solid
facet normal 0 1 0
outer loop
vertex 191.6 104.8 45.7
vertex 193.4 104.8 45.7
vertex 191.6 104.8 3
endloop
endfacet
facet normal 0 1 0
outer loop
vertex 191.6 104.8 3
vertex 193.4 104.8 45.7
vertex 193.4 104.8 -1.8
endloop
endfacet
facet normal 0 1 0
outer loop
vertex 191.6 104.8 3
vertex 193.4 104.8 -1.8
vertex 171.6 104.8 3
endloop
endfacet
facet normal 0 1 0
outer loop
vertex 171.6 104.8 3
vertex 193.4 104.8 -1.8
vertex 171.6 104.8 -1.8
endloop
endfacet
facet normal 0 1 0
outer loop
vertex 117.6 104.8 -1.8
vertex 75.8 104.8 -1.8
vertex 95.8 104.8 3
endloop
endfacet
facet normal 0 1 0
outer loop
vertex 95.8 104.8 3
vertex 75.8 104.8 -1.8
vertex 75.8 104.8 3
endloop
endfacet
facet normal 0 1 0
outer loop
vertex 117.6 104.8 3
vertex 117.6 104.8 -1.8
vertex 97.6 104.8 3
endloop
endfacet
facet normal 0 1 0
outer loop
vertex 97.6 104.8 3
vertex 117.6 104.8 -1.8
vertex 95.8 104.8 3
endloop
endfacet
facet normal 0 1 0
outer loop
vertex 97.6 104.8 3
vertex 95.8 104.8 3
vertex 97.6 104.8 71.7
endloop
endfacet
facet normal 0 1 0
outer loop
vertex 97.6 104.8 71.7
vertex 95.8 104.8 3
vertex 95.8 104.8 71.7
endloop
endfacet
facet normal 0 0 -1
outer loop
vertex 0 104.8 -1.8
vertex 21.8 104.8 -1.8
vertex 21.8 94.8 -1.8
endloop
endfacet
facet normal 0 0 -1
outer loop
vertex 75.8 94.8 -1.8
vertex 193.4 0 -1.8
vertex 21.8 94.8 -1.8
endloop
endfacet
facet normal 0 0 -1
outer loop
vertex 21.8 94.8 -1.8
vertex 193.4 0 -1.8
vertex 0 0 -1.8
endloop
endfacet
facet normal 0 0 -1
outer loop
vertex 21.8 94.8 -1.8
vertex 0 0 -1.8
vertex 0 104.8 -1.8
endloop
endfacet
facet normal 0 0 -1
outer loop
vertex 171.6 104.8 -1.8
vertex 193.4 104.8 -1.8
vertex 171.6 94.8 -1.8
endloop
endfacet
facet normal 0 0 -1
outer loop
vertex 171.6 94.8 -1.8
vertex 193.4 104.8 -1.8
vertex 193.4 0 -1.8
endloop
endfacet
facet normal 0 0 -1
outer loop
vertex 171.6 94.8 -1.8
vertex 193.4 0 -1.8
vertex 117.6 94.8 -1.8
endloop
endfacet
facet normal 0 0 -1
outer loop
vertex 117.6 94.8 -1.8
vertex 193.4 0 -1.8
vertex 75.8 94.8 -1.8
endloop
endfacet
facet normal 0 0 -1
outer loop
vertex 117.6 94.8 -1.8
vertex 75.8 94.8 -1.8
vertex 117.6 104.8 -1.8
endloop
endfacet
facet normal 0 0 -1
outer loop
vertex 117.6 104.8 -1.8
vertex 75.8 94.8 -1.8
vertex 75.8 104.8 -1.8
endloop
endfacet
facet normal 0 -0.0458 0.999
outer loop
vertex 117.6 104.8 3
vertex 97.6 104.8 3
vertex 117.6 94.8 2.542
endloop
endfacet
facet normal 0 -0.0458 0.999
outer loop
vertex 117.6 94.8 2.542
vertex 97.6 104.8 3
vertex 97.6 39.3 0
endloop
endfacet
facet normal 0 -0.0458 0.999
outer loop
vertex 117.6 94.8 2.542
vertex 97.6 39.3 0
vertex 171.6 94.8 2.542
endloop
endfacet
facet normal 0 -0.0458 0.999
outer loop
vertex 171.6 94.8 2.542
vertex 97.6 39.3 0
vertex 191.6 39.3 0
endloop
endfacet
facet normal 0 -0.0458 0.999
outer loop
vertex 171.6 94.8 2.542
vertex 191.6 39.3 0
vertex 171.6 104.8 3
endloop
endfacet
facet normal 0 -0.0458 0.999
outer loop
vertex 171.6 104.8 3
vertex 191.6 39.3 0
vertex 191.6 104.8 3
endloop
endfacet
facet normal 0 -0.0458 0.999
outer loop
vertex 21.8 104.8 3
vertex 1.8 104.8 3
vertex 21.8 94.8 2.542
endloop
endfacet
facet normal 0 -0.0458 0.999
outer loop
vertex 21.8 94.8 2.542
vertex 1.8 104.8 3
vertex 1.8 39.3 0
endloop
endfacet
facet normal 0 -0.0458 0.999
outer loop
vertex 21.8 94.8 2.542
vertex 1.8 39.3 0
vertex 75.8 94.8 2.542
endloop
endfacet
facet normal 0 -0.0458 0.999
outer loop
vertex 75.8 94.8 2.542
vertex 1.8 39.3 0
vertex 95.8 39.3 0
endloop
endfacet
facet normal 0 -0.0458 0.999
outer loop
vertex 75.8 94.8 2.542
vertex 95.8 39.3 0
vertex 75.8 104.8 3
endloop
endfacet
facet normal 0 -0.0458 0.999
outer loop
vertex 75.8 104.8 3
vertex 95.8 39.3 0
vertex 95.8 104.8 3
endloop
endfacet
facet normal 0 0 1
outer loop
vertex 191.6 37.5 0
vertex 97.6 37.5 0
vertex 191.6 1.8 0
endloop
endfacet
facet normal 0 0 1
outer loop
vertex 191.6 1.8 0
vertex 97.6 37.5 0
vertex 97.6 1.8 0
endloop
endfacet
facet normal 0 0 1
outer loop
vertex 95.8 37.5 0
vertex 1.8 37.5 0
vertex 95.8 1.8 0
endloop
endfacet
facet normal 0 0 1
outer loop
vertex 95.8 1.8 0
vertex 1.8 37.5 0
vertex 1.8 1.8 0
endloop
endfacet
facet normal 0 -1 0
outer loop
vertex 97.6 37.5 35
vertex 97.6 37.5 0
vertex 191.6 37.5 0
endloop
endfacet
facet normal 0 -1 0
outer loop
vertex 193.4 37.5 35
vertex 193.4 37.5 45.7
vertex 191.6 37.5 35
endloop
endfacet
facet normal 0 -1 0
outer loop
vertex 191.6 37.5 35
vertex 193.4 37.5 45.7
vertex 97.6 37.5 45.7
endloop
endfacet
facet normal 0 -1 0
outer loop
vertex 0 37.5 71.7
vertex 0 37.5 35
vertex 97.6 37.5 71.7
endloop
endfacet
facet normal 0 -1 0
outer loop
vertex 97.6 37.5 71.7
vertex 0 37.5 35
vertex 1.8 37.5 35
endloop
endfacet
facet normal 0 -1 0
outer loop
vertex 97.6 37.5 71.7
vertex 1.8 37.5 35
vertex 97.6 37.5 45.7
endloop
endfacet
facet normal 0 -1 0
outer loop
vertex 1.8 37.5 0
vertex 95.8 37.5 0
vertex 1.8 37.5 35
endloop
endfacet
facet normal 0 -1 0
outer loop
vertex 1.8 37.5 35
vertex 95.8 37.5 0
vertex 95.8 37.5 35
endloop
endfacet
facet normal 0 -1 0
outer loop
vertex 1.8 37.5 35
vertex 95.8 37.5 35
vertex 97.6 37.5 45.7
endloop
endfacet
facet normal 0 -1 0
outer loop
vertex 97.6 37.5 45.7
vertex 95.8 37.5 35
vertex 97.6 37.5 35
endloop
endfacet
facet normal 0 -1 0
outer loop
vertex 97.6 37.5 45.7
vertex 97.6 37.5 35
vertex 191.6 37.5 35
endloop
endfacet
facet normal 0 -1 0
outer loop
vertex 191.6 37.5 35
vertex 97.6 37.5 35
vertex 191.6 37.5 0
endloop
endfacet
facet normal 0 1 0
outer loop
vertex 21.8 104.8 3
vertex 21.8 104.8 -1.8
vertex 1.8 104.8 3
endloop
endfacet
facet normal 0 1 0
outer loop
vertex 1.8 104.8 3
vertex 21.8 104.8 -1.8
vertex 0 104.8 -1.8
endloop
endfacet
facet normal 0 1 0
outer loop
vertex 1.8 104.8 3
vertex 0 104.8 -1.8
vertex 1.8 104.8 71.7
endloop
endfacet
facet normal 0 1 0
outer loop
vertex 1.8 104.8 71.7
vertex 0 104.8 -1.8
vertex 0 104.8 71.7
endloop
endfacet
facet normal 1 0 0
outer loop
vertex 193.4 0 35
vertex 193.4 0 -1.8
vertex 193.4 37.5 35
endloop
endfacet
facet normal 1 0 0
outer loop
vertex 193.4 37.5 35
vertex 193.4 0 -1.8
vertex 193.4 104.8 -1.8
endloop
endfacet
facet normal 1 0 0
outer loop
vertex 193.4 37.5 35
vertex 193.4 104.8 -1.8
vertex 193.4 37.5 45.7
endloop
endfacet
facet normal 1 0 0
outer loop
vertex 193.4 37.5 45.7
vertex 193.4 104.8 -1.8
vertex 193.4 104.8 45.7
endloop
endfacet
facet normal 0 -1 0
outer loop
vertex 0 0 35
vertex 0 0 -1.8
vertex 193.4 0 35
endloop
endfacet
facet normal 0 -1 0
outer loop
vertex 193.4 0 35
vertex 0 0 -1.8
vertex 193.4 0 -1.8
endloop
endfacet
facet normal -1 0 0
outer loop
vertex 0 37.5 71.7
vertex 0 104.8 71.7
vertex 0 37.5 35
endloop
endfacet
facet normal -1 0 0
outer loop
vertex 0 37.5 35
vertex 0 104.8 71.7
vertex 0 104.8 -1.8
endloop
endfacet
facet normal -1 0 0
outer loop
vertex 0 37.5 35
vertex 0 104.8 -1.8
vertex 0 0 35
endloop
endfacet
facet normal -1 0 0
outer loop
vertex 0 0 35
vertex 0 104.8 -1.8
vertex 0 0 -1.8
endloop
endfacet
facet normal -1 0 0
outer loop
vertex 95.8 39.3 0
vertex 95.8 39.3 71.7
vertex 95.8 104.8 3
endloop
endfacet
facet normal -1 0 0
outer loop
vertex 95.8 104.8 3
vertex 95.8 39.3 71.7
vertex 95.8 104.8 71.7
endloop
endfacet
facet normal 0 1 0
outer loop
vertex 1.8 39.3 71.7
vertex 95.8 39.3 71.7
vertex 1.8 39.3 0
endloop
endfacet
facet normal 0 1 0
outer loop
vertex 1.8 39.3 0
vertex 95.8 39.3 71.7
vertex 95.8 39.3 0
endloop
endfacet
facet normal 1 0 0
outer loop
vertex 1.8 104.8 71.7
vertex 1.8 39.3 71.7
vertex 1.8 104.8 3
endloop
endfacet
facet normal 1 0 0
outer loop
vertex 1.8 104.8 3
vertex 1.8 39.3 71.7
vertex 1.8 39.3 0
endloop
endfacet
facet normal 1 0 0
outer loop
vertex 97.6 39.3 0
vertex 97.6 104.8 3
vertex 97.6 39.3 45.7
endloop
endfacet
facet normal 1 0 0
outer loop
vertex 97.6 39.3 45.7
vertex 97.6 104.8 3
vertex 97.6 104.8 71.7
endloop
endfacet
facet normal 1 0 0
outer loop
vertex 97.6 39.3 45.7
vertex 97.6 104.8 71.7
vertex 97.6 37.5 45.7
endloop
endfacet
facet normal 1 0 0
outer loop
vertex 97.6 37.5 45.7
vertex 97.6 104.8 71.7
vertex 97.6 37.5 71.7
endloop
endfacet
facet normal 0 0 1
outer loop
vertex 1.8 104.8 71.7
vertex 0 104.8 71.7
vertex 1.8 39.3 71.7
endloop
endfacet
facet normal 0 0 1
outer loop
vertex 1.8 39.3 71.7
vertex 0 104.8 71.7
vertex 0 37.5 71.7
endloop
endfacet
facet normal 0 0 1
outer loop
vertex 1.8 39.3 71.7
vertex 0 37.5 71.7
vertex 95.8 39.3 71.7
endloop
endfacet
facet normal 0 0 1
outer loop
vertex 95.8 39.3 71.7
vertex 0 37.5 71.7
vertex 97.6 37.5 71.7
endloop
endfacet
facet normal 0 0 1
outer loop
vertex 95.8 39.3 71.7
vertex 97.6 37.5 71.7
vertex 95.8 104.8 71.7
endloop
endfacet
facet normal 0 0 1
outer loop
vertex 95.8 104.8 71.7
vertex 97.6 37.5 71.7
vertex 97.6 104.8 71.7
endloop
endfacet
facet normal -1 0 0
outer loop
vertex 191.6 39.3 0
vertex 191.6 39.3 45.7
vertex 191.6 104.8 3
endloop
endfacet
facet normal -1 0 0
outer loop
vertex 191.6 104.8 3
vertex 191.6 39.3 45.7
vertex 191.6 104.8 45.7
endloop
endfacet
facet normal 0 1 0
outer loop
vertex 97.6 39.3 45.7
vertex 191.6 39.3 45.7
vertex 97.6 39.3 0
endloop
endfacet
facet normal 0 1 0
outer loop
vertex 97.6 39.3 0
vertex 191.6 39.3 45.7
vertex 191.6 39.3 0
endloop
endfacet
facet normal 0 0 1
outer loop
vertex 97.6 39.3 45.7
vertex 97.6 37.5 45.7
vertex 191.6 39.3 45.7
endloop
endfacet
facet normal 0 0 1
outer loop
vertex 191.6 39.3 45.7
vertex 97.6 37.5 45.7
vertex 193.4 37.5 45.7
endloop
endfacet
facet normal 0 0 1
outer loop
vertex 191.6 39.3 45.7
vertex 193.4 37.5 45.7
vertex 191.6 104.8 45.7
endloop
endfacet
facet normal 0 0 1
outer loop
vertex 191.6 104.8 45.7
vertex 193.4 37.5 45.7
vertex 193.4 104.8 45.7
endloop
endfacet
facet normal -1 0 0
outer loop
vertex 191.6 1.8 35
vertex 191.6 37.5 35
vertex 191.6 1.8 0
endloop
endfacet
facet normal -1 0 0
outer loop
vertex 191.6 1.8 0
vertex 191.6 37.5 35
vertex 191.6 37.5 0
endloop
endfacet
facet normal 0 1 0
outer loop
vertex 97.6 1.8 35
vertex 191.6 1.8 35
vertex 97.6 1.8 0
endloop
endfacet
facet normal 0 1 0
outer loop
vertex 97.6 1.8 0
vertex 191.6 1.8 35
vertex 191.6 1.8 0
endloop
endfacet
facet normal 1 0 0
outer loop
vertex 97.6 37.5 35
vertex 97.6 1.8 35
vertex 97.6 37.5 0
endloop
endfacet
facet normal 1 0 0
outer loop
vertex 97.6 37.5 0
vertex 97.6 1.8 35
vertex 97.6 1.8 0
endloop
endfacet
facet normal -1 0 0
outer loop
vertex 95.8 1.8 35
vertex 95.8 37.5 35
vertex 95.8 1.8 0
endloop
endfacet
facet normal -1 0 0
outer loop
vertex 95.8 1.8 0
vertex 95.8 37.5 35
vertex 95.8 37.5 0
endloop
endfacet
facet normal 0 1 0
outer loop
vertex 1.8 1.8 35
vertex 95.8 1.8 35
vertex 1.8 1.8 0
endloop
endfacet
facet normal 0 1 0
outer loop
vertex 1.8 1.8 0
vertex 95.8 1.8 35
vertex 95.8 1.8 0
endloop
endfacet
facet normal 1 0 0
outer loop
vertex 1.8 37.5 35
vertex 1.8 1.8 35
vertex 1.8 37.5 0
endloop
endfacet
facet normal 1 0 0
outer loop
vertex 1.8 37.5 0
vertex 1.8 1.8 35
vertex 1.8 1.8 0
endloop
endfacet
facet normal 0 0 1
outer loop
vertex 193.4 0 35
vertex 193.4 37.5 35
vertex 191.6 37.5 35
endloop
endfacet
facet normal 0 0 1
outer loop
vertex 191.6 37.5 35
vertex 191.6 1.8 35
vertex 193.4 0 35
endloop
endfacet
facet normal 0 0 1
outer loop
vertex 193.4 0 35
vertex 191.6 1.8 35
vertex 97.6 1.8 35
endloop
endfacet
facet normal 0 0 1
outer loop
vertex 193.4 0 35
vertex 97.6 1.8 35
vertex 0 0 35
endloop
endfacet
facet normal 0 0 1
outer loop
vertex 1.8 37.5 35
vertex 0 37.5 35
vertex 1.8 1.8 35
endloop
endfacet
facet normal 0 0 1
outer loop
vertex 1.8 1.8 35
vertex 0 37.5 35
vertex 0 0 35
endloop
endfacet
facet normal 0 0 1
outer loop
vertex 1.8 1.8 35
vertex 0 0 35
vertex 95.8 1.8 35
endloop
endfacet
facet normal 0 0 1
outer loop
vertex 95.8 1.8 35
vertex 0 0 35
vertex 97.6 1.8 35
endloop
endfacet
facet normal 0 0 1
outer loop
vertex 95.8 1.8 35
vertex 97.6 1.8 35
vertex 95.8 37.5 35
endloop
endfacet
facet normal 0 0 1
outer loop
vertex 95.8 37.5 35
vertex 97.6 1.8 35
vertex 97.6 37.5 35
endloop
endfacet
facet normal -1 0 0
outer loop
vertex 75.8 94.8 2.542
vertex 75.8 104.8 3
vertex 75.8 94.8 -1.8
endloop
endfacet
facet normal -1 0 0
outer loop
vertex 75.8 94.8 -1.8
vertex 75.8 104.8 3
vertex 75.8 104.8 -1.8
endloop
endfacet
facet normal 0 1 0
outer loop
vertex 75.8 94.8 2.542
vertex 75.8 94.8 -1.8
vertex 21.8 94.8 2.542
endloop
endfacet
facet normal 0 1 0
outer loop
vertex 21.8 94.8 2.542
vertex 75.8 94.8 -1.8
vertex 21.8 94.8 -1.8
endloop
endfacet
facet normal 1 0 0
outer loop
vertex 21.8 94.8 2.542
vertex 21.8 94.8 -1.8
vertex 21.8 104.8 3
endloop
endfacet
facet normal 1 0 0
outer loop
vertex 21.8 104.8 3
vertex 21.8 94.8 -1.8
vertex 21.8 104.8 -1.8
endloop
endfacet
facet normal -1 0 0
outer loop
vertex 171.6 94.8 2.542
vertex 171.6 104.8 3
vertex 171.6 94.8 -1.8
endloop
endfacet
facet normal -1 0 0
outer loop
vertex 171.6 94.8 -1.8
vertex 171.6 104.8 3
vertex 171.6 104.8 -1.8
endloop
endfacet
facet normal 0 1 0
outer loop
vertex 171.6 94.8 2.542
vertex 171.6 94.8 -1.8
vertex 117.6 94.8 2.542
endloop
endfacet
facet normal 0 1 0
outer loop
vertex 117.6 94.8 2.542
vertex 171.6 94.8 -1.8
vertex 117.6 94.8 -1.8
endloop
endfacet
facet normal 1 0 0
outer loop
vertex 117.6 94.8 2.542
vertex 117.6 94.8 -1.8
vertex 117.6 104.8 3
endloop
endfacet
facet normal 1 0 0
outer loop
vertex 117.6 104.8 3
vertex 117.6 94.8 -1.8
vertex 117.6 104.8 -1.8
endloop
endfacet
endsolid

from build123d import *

# Parameters (mm, degrees)
SKETCH1_W               = 193.4
SKETCH1_H               = 104.8
BOSS_EXTRUDE1_DEPTH     = 1.8
SKETCH1_8_W             = 1.8
SKETCH1_8_H             = 65.5
SKETCH1_8_H_2           = 1.8
SKETCH1_8_W_2           = 94
BOSS_EXTRUDE2_DEPTH     = 71.7
SKETCH1_10_W            = 94
SKETCH1_10_H            = 1.8
SKETCH1_10_W_2          = 1.8
SKETCH1_10_H_2          = 65.5
BOSS_EXTRUDE3_DEPTH     = 45.7
BOSS_EXTRUDE4_DEPTH     = 35
BOSS_EXTRUDE8_REACH     = 231.858
CUT_EXTRUDE1_DEPTH      = 27
CUT_EXTRUDE1_DEPTH_BACK = 16
SKETCH1_12_W            = 54
SKETCH1_12_H            = 10


with BuildPart() as part:
    # Sketch1 → Boss-Extrude1 (new body)
    with BuildSketch(Plane.XY):
        with Locations((96.7, 52.4)):
            Rectangle(SKETCH1_W, SKETCH1_H)
    extrude(amount=-BOSS_EXTRUDE1_DEPTH)

    # Sketch1<8> → Boss-Extrude2 (add)
    with BuildSketch(Plane.XY):
        with Locations((96.7, 72.05)):
            Rectangle(SKETCH1_8_W, SKETCH1_8_H)
        with Locations((96.7, 38.4)):
            Rectangle(SKETCH1_8_W, SKETCH1_8_H_2)
        with Locations((48.8, 38.4)):
            Rectangle(SKETCH1_8_W_2, SKETCH1_8_H_2)
        with Locations((0.9, 72.05)):
            Rectangle(SKETCH1_8_W, SKETCH1_8_H)
        with Locations((0.9, 38.4)):
            Rectangle(SKETCH1_8_W, SKETCH1_8_H_2)
    extrude(amount=BOSS_EXTRUDE2_DEPTH)

    # Sketch1<10> → Boss-Extrude3 (add)
    with BuildSketch(Plane.XY):
        with Locations((144.6, 38.4)):
            Rectangle(SKETCH1_10_W, SKETCH1_10_H)
        with Locations((192.5, 72.05)):
            Rectangle(SKETCH1_10_W_2, SKETCH1_10_H_2)
        with Locations((192.5, 38.4)):
            Rectangle(SKETCH1_10_W_2, SKETCH1_10_H)
    extrude(amount=BOSS_EXTRUDE3_DEPTH)

    # Sketch1<11> → Boss-Extrude4 (add)
    with BuildSketch(Plane.XY):
        Polygon((0, 37.5), (0, 0), (193.4, 0), (193.4, 37.5), (191.6, 37.5), (191.6, 1.8), (97.6, 1.8), (97.6, 37.5), (95.8, 37.5), (95.8, 1.8), (1.8, 1.8), (1.8, 37.5), align=None)
    extrude(amount=BOSS_EXTRUDE4_DEPTH)

    # Boss-Extrude8: up to this face of the body (flat: up to its plane)
    boss_extrude8_end = Plane(part.part.faces().sort_by_distance((1.8, 72.05, 35.85))[0])
    # Sketch2 → Boss-Extrude8 (add, up to the picked face)
    with BuildSketch(Plane.ZY.offset(-191.6), mode=Mode.PRIVATE) as boss_extrude8_sk1:
        Polygon((3, 104.8), (0, 104.8), (0, 39.3), align=None)
    boss_extrude8_tool1 = split(extrude(boss_extrude8_sk1.sketch, amount=BOSS_EXTRUDE8_REACH, mode=Mode.PRIVATE), bisect_by=boss_extrude8_end, keep=Keep.BOTH, mode=Mode.PRIVATE)
    add(boss_extrude8_tool1.solids().sort_by(Axis((191.6, 82.966667, 1), (-1, 0, 0)))[0])

    # Sketch1<12> → Cut-Extrude1 (cut, two sides: drawn at the far end of the back side and taken through both)
    with BuildSketch(Plane.XY.offset(-CUT_EXTRUDE1_DEPTH_BACK)):
        with Locations((144.6, 99.8)):
            Rectangle(SKETCH1_12_W, SKETCH1_12_H)
        with Locations((48.8, 99.8)):
            Rectangle(SKETCH1_12_W, SKETCH1_12_H)
    extrude(amount=CUT_EXTRUDE1_DEPTH + CUT_EXTRUDE1_DEPTH_BACK, mode=Mode.SUBTRACT)


solid = part.part
